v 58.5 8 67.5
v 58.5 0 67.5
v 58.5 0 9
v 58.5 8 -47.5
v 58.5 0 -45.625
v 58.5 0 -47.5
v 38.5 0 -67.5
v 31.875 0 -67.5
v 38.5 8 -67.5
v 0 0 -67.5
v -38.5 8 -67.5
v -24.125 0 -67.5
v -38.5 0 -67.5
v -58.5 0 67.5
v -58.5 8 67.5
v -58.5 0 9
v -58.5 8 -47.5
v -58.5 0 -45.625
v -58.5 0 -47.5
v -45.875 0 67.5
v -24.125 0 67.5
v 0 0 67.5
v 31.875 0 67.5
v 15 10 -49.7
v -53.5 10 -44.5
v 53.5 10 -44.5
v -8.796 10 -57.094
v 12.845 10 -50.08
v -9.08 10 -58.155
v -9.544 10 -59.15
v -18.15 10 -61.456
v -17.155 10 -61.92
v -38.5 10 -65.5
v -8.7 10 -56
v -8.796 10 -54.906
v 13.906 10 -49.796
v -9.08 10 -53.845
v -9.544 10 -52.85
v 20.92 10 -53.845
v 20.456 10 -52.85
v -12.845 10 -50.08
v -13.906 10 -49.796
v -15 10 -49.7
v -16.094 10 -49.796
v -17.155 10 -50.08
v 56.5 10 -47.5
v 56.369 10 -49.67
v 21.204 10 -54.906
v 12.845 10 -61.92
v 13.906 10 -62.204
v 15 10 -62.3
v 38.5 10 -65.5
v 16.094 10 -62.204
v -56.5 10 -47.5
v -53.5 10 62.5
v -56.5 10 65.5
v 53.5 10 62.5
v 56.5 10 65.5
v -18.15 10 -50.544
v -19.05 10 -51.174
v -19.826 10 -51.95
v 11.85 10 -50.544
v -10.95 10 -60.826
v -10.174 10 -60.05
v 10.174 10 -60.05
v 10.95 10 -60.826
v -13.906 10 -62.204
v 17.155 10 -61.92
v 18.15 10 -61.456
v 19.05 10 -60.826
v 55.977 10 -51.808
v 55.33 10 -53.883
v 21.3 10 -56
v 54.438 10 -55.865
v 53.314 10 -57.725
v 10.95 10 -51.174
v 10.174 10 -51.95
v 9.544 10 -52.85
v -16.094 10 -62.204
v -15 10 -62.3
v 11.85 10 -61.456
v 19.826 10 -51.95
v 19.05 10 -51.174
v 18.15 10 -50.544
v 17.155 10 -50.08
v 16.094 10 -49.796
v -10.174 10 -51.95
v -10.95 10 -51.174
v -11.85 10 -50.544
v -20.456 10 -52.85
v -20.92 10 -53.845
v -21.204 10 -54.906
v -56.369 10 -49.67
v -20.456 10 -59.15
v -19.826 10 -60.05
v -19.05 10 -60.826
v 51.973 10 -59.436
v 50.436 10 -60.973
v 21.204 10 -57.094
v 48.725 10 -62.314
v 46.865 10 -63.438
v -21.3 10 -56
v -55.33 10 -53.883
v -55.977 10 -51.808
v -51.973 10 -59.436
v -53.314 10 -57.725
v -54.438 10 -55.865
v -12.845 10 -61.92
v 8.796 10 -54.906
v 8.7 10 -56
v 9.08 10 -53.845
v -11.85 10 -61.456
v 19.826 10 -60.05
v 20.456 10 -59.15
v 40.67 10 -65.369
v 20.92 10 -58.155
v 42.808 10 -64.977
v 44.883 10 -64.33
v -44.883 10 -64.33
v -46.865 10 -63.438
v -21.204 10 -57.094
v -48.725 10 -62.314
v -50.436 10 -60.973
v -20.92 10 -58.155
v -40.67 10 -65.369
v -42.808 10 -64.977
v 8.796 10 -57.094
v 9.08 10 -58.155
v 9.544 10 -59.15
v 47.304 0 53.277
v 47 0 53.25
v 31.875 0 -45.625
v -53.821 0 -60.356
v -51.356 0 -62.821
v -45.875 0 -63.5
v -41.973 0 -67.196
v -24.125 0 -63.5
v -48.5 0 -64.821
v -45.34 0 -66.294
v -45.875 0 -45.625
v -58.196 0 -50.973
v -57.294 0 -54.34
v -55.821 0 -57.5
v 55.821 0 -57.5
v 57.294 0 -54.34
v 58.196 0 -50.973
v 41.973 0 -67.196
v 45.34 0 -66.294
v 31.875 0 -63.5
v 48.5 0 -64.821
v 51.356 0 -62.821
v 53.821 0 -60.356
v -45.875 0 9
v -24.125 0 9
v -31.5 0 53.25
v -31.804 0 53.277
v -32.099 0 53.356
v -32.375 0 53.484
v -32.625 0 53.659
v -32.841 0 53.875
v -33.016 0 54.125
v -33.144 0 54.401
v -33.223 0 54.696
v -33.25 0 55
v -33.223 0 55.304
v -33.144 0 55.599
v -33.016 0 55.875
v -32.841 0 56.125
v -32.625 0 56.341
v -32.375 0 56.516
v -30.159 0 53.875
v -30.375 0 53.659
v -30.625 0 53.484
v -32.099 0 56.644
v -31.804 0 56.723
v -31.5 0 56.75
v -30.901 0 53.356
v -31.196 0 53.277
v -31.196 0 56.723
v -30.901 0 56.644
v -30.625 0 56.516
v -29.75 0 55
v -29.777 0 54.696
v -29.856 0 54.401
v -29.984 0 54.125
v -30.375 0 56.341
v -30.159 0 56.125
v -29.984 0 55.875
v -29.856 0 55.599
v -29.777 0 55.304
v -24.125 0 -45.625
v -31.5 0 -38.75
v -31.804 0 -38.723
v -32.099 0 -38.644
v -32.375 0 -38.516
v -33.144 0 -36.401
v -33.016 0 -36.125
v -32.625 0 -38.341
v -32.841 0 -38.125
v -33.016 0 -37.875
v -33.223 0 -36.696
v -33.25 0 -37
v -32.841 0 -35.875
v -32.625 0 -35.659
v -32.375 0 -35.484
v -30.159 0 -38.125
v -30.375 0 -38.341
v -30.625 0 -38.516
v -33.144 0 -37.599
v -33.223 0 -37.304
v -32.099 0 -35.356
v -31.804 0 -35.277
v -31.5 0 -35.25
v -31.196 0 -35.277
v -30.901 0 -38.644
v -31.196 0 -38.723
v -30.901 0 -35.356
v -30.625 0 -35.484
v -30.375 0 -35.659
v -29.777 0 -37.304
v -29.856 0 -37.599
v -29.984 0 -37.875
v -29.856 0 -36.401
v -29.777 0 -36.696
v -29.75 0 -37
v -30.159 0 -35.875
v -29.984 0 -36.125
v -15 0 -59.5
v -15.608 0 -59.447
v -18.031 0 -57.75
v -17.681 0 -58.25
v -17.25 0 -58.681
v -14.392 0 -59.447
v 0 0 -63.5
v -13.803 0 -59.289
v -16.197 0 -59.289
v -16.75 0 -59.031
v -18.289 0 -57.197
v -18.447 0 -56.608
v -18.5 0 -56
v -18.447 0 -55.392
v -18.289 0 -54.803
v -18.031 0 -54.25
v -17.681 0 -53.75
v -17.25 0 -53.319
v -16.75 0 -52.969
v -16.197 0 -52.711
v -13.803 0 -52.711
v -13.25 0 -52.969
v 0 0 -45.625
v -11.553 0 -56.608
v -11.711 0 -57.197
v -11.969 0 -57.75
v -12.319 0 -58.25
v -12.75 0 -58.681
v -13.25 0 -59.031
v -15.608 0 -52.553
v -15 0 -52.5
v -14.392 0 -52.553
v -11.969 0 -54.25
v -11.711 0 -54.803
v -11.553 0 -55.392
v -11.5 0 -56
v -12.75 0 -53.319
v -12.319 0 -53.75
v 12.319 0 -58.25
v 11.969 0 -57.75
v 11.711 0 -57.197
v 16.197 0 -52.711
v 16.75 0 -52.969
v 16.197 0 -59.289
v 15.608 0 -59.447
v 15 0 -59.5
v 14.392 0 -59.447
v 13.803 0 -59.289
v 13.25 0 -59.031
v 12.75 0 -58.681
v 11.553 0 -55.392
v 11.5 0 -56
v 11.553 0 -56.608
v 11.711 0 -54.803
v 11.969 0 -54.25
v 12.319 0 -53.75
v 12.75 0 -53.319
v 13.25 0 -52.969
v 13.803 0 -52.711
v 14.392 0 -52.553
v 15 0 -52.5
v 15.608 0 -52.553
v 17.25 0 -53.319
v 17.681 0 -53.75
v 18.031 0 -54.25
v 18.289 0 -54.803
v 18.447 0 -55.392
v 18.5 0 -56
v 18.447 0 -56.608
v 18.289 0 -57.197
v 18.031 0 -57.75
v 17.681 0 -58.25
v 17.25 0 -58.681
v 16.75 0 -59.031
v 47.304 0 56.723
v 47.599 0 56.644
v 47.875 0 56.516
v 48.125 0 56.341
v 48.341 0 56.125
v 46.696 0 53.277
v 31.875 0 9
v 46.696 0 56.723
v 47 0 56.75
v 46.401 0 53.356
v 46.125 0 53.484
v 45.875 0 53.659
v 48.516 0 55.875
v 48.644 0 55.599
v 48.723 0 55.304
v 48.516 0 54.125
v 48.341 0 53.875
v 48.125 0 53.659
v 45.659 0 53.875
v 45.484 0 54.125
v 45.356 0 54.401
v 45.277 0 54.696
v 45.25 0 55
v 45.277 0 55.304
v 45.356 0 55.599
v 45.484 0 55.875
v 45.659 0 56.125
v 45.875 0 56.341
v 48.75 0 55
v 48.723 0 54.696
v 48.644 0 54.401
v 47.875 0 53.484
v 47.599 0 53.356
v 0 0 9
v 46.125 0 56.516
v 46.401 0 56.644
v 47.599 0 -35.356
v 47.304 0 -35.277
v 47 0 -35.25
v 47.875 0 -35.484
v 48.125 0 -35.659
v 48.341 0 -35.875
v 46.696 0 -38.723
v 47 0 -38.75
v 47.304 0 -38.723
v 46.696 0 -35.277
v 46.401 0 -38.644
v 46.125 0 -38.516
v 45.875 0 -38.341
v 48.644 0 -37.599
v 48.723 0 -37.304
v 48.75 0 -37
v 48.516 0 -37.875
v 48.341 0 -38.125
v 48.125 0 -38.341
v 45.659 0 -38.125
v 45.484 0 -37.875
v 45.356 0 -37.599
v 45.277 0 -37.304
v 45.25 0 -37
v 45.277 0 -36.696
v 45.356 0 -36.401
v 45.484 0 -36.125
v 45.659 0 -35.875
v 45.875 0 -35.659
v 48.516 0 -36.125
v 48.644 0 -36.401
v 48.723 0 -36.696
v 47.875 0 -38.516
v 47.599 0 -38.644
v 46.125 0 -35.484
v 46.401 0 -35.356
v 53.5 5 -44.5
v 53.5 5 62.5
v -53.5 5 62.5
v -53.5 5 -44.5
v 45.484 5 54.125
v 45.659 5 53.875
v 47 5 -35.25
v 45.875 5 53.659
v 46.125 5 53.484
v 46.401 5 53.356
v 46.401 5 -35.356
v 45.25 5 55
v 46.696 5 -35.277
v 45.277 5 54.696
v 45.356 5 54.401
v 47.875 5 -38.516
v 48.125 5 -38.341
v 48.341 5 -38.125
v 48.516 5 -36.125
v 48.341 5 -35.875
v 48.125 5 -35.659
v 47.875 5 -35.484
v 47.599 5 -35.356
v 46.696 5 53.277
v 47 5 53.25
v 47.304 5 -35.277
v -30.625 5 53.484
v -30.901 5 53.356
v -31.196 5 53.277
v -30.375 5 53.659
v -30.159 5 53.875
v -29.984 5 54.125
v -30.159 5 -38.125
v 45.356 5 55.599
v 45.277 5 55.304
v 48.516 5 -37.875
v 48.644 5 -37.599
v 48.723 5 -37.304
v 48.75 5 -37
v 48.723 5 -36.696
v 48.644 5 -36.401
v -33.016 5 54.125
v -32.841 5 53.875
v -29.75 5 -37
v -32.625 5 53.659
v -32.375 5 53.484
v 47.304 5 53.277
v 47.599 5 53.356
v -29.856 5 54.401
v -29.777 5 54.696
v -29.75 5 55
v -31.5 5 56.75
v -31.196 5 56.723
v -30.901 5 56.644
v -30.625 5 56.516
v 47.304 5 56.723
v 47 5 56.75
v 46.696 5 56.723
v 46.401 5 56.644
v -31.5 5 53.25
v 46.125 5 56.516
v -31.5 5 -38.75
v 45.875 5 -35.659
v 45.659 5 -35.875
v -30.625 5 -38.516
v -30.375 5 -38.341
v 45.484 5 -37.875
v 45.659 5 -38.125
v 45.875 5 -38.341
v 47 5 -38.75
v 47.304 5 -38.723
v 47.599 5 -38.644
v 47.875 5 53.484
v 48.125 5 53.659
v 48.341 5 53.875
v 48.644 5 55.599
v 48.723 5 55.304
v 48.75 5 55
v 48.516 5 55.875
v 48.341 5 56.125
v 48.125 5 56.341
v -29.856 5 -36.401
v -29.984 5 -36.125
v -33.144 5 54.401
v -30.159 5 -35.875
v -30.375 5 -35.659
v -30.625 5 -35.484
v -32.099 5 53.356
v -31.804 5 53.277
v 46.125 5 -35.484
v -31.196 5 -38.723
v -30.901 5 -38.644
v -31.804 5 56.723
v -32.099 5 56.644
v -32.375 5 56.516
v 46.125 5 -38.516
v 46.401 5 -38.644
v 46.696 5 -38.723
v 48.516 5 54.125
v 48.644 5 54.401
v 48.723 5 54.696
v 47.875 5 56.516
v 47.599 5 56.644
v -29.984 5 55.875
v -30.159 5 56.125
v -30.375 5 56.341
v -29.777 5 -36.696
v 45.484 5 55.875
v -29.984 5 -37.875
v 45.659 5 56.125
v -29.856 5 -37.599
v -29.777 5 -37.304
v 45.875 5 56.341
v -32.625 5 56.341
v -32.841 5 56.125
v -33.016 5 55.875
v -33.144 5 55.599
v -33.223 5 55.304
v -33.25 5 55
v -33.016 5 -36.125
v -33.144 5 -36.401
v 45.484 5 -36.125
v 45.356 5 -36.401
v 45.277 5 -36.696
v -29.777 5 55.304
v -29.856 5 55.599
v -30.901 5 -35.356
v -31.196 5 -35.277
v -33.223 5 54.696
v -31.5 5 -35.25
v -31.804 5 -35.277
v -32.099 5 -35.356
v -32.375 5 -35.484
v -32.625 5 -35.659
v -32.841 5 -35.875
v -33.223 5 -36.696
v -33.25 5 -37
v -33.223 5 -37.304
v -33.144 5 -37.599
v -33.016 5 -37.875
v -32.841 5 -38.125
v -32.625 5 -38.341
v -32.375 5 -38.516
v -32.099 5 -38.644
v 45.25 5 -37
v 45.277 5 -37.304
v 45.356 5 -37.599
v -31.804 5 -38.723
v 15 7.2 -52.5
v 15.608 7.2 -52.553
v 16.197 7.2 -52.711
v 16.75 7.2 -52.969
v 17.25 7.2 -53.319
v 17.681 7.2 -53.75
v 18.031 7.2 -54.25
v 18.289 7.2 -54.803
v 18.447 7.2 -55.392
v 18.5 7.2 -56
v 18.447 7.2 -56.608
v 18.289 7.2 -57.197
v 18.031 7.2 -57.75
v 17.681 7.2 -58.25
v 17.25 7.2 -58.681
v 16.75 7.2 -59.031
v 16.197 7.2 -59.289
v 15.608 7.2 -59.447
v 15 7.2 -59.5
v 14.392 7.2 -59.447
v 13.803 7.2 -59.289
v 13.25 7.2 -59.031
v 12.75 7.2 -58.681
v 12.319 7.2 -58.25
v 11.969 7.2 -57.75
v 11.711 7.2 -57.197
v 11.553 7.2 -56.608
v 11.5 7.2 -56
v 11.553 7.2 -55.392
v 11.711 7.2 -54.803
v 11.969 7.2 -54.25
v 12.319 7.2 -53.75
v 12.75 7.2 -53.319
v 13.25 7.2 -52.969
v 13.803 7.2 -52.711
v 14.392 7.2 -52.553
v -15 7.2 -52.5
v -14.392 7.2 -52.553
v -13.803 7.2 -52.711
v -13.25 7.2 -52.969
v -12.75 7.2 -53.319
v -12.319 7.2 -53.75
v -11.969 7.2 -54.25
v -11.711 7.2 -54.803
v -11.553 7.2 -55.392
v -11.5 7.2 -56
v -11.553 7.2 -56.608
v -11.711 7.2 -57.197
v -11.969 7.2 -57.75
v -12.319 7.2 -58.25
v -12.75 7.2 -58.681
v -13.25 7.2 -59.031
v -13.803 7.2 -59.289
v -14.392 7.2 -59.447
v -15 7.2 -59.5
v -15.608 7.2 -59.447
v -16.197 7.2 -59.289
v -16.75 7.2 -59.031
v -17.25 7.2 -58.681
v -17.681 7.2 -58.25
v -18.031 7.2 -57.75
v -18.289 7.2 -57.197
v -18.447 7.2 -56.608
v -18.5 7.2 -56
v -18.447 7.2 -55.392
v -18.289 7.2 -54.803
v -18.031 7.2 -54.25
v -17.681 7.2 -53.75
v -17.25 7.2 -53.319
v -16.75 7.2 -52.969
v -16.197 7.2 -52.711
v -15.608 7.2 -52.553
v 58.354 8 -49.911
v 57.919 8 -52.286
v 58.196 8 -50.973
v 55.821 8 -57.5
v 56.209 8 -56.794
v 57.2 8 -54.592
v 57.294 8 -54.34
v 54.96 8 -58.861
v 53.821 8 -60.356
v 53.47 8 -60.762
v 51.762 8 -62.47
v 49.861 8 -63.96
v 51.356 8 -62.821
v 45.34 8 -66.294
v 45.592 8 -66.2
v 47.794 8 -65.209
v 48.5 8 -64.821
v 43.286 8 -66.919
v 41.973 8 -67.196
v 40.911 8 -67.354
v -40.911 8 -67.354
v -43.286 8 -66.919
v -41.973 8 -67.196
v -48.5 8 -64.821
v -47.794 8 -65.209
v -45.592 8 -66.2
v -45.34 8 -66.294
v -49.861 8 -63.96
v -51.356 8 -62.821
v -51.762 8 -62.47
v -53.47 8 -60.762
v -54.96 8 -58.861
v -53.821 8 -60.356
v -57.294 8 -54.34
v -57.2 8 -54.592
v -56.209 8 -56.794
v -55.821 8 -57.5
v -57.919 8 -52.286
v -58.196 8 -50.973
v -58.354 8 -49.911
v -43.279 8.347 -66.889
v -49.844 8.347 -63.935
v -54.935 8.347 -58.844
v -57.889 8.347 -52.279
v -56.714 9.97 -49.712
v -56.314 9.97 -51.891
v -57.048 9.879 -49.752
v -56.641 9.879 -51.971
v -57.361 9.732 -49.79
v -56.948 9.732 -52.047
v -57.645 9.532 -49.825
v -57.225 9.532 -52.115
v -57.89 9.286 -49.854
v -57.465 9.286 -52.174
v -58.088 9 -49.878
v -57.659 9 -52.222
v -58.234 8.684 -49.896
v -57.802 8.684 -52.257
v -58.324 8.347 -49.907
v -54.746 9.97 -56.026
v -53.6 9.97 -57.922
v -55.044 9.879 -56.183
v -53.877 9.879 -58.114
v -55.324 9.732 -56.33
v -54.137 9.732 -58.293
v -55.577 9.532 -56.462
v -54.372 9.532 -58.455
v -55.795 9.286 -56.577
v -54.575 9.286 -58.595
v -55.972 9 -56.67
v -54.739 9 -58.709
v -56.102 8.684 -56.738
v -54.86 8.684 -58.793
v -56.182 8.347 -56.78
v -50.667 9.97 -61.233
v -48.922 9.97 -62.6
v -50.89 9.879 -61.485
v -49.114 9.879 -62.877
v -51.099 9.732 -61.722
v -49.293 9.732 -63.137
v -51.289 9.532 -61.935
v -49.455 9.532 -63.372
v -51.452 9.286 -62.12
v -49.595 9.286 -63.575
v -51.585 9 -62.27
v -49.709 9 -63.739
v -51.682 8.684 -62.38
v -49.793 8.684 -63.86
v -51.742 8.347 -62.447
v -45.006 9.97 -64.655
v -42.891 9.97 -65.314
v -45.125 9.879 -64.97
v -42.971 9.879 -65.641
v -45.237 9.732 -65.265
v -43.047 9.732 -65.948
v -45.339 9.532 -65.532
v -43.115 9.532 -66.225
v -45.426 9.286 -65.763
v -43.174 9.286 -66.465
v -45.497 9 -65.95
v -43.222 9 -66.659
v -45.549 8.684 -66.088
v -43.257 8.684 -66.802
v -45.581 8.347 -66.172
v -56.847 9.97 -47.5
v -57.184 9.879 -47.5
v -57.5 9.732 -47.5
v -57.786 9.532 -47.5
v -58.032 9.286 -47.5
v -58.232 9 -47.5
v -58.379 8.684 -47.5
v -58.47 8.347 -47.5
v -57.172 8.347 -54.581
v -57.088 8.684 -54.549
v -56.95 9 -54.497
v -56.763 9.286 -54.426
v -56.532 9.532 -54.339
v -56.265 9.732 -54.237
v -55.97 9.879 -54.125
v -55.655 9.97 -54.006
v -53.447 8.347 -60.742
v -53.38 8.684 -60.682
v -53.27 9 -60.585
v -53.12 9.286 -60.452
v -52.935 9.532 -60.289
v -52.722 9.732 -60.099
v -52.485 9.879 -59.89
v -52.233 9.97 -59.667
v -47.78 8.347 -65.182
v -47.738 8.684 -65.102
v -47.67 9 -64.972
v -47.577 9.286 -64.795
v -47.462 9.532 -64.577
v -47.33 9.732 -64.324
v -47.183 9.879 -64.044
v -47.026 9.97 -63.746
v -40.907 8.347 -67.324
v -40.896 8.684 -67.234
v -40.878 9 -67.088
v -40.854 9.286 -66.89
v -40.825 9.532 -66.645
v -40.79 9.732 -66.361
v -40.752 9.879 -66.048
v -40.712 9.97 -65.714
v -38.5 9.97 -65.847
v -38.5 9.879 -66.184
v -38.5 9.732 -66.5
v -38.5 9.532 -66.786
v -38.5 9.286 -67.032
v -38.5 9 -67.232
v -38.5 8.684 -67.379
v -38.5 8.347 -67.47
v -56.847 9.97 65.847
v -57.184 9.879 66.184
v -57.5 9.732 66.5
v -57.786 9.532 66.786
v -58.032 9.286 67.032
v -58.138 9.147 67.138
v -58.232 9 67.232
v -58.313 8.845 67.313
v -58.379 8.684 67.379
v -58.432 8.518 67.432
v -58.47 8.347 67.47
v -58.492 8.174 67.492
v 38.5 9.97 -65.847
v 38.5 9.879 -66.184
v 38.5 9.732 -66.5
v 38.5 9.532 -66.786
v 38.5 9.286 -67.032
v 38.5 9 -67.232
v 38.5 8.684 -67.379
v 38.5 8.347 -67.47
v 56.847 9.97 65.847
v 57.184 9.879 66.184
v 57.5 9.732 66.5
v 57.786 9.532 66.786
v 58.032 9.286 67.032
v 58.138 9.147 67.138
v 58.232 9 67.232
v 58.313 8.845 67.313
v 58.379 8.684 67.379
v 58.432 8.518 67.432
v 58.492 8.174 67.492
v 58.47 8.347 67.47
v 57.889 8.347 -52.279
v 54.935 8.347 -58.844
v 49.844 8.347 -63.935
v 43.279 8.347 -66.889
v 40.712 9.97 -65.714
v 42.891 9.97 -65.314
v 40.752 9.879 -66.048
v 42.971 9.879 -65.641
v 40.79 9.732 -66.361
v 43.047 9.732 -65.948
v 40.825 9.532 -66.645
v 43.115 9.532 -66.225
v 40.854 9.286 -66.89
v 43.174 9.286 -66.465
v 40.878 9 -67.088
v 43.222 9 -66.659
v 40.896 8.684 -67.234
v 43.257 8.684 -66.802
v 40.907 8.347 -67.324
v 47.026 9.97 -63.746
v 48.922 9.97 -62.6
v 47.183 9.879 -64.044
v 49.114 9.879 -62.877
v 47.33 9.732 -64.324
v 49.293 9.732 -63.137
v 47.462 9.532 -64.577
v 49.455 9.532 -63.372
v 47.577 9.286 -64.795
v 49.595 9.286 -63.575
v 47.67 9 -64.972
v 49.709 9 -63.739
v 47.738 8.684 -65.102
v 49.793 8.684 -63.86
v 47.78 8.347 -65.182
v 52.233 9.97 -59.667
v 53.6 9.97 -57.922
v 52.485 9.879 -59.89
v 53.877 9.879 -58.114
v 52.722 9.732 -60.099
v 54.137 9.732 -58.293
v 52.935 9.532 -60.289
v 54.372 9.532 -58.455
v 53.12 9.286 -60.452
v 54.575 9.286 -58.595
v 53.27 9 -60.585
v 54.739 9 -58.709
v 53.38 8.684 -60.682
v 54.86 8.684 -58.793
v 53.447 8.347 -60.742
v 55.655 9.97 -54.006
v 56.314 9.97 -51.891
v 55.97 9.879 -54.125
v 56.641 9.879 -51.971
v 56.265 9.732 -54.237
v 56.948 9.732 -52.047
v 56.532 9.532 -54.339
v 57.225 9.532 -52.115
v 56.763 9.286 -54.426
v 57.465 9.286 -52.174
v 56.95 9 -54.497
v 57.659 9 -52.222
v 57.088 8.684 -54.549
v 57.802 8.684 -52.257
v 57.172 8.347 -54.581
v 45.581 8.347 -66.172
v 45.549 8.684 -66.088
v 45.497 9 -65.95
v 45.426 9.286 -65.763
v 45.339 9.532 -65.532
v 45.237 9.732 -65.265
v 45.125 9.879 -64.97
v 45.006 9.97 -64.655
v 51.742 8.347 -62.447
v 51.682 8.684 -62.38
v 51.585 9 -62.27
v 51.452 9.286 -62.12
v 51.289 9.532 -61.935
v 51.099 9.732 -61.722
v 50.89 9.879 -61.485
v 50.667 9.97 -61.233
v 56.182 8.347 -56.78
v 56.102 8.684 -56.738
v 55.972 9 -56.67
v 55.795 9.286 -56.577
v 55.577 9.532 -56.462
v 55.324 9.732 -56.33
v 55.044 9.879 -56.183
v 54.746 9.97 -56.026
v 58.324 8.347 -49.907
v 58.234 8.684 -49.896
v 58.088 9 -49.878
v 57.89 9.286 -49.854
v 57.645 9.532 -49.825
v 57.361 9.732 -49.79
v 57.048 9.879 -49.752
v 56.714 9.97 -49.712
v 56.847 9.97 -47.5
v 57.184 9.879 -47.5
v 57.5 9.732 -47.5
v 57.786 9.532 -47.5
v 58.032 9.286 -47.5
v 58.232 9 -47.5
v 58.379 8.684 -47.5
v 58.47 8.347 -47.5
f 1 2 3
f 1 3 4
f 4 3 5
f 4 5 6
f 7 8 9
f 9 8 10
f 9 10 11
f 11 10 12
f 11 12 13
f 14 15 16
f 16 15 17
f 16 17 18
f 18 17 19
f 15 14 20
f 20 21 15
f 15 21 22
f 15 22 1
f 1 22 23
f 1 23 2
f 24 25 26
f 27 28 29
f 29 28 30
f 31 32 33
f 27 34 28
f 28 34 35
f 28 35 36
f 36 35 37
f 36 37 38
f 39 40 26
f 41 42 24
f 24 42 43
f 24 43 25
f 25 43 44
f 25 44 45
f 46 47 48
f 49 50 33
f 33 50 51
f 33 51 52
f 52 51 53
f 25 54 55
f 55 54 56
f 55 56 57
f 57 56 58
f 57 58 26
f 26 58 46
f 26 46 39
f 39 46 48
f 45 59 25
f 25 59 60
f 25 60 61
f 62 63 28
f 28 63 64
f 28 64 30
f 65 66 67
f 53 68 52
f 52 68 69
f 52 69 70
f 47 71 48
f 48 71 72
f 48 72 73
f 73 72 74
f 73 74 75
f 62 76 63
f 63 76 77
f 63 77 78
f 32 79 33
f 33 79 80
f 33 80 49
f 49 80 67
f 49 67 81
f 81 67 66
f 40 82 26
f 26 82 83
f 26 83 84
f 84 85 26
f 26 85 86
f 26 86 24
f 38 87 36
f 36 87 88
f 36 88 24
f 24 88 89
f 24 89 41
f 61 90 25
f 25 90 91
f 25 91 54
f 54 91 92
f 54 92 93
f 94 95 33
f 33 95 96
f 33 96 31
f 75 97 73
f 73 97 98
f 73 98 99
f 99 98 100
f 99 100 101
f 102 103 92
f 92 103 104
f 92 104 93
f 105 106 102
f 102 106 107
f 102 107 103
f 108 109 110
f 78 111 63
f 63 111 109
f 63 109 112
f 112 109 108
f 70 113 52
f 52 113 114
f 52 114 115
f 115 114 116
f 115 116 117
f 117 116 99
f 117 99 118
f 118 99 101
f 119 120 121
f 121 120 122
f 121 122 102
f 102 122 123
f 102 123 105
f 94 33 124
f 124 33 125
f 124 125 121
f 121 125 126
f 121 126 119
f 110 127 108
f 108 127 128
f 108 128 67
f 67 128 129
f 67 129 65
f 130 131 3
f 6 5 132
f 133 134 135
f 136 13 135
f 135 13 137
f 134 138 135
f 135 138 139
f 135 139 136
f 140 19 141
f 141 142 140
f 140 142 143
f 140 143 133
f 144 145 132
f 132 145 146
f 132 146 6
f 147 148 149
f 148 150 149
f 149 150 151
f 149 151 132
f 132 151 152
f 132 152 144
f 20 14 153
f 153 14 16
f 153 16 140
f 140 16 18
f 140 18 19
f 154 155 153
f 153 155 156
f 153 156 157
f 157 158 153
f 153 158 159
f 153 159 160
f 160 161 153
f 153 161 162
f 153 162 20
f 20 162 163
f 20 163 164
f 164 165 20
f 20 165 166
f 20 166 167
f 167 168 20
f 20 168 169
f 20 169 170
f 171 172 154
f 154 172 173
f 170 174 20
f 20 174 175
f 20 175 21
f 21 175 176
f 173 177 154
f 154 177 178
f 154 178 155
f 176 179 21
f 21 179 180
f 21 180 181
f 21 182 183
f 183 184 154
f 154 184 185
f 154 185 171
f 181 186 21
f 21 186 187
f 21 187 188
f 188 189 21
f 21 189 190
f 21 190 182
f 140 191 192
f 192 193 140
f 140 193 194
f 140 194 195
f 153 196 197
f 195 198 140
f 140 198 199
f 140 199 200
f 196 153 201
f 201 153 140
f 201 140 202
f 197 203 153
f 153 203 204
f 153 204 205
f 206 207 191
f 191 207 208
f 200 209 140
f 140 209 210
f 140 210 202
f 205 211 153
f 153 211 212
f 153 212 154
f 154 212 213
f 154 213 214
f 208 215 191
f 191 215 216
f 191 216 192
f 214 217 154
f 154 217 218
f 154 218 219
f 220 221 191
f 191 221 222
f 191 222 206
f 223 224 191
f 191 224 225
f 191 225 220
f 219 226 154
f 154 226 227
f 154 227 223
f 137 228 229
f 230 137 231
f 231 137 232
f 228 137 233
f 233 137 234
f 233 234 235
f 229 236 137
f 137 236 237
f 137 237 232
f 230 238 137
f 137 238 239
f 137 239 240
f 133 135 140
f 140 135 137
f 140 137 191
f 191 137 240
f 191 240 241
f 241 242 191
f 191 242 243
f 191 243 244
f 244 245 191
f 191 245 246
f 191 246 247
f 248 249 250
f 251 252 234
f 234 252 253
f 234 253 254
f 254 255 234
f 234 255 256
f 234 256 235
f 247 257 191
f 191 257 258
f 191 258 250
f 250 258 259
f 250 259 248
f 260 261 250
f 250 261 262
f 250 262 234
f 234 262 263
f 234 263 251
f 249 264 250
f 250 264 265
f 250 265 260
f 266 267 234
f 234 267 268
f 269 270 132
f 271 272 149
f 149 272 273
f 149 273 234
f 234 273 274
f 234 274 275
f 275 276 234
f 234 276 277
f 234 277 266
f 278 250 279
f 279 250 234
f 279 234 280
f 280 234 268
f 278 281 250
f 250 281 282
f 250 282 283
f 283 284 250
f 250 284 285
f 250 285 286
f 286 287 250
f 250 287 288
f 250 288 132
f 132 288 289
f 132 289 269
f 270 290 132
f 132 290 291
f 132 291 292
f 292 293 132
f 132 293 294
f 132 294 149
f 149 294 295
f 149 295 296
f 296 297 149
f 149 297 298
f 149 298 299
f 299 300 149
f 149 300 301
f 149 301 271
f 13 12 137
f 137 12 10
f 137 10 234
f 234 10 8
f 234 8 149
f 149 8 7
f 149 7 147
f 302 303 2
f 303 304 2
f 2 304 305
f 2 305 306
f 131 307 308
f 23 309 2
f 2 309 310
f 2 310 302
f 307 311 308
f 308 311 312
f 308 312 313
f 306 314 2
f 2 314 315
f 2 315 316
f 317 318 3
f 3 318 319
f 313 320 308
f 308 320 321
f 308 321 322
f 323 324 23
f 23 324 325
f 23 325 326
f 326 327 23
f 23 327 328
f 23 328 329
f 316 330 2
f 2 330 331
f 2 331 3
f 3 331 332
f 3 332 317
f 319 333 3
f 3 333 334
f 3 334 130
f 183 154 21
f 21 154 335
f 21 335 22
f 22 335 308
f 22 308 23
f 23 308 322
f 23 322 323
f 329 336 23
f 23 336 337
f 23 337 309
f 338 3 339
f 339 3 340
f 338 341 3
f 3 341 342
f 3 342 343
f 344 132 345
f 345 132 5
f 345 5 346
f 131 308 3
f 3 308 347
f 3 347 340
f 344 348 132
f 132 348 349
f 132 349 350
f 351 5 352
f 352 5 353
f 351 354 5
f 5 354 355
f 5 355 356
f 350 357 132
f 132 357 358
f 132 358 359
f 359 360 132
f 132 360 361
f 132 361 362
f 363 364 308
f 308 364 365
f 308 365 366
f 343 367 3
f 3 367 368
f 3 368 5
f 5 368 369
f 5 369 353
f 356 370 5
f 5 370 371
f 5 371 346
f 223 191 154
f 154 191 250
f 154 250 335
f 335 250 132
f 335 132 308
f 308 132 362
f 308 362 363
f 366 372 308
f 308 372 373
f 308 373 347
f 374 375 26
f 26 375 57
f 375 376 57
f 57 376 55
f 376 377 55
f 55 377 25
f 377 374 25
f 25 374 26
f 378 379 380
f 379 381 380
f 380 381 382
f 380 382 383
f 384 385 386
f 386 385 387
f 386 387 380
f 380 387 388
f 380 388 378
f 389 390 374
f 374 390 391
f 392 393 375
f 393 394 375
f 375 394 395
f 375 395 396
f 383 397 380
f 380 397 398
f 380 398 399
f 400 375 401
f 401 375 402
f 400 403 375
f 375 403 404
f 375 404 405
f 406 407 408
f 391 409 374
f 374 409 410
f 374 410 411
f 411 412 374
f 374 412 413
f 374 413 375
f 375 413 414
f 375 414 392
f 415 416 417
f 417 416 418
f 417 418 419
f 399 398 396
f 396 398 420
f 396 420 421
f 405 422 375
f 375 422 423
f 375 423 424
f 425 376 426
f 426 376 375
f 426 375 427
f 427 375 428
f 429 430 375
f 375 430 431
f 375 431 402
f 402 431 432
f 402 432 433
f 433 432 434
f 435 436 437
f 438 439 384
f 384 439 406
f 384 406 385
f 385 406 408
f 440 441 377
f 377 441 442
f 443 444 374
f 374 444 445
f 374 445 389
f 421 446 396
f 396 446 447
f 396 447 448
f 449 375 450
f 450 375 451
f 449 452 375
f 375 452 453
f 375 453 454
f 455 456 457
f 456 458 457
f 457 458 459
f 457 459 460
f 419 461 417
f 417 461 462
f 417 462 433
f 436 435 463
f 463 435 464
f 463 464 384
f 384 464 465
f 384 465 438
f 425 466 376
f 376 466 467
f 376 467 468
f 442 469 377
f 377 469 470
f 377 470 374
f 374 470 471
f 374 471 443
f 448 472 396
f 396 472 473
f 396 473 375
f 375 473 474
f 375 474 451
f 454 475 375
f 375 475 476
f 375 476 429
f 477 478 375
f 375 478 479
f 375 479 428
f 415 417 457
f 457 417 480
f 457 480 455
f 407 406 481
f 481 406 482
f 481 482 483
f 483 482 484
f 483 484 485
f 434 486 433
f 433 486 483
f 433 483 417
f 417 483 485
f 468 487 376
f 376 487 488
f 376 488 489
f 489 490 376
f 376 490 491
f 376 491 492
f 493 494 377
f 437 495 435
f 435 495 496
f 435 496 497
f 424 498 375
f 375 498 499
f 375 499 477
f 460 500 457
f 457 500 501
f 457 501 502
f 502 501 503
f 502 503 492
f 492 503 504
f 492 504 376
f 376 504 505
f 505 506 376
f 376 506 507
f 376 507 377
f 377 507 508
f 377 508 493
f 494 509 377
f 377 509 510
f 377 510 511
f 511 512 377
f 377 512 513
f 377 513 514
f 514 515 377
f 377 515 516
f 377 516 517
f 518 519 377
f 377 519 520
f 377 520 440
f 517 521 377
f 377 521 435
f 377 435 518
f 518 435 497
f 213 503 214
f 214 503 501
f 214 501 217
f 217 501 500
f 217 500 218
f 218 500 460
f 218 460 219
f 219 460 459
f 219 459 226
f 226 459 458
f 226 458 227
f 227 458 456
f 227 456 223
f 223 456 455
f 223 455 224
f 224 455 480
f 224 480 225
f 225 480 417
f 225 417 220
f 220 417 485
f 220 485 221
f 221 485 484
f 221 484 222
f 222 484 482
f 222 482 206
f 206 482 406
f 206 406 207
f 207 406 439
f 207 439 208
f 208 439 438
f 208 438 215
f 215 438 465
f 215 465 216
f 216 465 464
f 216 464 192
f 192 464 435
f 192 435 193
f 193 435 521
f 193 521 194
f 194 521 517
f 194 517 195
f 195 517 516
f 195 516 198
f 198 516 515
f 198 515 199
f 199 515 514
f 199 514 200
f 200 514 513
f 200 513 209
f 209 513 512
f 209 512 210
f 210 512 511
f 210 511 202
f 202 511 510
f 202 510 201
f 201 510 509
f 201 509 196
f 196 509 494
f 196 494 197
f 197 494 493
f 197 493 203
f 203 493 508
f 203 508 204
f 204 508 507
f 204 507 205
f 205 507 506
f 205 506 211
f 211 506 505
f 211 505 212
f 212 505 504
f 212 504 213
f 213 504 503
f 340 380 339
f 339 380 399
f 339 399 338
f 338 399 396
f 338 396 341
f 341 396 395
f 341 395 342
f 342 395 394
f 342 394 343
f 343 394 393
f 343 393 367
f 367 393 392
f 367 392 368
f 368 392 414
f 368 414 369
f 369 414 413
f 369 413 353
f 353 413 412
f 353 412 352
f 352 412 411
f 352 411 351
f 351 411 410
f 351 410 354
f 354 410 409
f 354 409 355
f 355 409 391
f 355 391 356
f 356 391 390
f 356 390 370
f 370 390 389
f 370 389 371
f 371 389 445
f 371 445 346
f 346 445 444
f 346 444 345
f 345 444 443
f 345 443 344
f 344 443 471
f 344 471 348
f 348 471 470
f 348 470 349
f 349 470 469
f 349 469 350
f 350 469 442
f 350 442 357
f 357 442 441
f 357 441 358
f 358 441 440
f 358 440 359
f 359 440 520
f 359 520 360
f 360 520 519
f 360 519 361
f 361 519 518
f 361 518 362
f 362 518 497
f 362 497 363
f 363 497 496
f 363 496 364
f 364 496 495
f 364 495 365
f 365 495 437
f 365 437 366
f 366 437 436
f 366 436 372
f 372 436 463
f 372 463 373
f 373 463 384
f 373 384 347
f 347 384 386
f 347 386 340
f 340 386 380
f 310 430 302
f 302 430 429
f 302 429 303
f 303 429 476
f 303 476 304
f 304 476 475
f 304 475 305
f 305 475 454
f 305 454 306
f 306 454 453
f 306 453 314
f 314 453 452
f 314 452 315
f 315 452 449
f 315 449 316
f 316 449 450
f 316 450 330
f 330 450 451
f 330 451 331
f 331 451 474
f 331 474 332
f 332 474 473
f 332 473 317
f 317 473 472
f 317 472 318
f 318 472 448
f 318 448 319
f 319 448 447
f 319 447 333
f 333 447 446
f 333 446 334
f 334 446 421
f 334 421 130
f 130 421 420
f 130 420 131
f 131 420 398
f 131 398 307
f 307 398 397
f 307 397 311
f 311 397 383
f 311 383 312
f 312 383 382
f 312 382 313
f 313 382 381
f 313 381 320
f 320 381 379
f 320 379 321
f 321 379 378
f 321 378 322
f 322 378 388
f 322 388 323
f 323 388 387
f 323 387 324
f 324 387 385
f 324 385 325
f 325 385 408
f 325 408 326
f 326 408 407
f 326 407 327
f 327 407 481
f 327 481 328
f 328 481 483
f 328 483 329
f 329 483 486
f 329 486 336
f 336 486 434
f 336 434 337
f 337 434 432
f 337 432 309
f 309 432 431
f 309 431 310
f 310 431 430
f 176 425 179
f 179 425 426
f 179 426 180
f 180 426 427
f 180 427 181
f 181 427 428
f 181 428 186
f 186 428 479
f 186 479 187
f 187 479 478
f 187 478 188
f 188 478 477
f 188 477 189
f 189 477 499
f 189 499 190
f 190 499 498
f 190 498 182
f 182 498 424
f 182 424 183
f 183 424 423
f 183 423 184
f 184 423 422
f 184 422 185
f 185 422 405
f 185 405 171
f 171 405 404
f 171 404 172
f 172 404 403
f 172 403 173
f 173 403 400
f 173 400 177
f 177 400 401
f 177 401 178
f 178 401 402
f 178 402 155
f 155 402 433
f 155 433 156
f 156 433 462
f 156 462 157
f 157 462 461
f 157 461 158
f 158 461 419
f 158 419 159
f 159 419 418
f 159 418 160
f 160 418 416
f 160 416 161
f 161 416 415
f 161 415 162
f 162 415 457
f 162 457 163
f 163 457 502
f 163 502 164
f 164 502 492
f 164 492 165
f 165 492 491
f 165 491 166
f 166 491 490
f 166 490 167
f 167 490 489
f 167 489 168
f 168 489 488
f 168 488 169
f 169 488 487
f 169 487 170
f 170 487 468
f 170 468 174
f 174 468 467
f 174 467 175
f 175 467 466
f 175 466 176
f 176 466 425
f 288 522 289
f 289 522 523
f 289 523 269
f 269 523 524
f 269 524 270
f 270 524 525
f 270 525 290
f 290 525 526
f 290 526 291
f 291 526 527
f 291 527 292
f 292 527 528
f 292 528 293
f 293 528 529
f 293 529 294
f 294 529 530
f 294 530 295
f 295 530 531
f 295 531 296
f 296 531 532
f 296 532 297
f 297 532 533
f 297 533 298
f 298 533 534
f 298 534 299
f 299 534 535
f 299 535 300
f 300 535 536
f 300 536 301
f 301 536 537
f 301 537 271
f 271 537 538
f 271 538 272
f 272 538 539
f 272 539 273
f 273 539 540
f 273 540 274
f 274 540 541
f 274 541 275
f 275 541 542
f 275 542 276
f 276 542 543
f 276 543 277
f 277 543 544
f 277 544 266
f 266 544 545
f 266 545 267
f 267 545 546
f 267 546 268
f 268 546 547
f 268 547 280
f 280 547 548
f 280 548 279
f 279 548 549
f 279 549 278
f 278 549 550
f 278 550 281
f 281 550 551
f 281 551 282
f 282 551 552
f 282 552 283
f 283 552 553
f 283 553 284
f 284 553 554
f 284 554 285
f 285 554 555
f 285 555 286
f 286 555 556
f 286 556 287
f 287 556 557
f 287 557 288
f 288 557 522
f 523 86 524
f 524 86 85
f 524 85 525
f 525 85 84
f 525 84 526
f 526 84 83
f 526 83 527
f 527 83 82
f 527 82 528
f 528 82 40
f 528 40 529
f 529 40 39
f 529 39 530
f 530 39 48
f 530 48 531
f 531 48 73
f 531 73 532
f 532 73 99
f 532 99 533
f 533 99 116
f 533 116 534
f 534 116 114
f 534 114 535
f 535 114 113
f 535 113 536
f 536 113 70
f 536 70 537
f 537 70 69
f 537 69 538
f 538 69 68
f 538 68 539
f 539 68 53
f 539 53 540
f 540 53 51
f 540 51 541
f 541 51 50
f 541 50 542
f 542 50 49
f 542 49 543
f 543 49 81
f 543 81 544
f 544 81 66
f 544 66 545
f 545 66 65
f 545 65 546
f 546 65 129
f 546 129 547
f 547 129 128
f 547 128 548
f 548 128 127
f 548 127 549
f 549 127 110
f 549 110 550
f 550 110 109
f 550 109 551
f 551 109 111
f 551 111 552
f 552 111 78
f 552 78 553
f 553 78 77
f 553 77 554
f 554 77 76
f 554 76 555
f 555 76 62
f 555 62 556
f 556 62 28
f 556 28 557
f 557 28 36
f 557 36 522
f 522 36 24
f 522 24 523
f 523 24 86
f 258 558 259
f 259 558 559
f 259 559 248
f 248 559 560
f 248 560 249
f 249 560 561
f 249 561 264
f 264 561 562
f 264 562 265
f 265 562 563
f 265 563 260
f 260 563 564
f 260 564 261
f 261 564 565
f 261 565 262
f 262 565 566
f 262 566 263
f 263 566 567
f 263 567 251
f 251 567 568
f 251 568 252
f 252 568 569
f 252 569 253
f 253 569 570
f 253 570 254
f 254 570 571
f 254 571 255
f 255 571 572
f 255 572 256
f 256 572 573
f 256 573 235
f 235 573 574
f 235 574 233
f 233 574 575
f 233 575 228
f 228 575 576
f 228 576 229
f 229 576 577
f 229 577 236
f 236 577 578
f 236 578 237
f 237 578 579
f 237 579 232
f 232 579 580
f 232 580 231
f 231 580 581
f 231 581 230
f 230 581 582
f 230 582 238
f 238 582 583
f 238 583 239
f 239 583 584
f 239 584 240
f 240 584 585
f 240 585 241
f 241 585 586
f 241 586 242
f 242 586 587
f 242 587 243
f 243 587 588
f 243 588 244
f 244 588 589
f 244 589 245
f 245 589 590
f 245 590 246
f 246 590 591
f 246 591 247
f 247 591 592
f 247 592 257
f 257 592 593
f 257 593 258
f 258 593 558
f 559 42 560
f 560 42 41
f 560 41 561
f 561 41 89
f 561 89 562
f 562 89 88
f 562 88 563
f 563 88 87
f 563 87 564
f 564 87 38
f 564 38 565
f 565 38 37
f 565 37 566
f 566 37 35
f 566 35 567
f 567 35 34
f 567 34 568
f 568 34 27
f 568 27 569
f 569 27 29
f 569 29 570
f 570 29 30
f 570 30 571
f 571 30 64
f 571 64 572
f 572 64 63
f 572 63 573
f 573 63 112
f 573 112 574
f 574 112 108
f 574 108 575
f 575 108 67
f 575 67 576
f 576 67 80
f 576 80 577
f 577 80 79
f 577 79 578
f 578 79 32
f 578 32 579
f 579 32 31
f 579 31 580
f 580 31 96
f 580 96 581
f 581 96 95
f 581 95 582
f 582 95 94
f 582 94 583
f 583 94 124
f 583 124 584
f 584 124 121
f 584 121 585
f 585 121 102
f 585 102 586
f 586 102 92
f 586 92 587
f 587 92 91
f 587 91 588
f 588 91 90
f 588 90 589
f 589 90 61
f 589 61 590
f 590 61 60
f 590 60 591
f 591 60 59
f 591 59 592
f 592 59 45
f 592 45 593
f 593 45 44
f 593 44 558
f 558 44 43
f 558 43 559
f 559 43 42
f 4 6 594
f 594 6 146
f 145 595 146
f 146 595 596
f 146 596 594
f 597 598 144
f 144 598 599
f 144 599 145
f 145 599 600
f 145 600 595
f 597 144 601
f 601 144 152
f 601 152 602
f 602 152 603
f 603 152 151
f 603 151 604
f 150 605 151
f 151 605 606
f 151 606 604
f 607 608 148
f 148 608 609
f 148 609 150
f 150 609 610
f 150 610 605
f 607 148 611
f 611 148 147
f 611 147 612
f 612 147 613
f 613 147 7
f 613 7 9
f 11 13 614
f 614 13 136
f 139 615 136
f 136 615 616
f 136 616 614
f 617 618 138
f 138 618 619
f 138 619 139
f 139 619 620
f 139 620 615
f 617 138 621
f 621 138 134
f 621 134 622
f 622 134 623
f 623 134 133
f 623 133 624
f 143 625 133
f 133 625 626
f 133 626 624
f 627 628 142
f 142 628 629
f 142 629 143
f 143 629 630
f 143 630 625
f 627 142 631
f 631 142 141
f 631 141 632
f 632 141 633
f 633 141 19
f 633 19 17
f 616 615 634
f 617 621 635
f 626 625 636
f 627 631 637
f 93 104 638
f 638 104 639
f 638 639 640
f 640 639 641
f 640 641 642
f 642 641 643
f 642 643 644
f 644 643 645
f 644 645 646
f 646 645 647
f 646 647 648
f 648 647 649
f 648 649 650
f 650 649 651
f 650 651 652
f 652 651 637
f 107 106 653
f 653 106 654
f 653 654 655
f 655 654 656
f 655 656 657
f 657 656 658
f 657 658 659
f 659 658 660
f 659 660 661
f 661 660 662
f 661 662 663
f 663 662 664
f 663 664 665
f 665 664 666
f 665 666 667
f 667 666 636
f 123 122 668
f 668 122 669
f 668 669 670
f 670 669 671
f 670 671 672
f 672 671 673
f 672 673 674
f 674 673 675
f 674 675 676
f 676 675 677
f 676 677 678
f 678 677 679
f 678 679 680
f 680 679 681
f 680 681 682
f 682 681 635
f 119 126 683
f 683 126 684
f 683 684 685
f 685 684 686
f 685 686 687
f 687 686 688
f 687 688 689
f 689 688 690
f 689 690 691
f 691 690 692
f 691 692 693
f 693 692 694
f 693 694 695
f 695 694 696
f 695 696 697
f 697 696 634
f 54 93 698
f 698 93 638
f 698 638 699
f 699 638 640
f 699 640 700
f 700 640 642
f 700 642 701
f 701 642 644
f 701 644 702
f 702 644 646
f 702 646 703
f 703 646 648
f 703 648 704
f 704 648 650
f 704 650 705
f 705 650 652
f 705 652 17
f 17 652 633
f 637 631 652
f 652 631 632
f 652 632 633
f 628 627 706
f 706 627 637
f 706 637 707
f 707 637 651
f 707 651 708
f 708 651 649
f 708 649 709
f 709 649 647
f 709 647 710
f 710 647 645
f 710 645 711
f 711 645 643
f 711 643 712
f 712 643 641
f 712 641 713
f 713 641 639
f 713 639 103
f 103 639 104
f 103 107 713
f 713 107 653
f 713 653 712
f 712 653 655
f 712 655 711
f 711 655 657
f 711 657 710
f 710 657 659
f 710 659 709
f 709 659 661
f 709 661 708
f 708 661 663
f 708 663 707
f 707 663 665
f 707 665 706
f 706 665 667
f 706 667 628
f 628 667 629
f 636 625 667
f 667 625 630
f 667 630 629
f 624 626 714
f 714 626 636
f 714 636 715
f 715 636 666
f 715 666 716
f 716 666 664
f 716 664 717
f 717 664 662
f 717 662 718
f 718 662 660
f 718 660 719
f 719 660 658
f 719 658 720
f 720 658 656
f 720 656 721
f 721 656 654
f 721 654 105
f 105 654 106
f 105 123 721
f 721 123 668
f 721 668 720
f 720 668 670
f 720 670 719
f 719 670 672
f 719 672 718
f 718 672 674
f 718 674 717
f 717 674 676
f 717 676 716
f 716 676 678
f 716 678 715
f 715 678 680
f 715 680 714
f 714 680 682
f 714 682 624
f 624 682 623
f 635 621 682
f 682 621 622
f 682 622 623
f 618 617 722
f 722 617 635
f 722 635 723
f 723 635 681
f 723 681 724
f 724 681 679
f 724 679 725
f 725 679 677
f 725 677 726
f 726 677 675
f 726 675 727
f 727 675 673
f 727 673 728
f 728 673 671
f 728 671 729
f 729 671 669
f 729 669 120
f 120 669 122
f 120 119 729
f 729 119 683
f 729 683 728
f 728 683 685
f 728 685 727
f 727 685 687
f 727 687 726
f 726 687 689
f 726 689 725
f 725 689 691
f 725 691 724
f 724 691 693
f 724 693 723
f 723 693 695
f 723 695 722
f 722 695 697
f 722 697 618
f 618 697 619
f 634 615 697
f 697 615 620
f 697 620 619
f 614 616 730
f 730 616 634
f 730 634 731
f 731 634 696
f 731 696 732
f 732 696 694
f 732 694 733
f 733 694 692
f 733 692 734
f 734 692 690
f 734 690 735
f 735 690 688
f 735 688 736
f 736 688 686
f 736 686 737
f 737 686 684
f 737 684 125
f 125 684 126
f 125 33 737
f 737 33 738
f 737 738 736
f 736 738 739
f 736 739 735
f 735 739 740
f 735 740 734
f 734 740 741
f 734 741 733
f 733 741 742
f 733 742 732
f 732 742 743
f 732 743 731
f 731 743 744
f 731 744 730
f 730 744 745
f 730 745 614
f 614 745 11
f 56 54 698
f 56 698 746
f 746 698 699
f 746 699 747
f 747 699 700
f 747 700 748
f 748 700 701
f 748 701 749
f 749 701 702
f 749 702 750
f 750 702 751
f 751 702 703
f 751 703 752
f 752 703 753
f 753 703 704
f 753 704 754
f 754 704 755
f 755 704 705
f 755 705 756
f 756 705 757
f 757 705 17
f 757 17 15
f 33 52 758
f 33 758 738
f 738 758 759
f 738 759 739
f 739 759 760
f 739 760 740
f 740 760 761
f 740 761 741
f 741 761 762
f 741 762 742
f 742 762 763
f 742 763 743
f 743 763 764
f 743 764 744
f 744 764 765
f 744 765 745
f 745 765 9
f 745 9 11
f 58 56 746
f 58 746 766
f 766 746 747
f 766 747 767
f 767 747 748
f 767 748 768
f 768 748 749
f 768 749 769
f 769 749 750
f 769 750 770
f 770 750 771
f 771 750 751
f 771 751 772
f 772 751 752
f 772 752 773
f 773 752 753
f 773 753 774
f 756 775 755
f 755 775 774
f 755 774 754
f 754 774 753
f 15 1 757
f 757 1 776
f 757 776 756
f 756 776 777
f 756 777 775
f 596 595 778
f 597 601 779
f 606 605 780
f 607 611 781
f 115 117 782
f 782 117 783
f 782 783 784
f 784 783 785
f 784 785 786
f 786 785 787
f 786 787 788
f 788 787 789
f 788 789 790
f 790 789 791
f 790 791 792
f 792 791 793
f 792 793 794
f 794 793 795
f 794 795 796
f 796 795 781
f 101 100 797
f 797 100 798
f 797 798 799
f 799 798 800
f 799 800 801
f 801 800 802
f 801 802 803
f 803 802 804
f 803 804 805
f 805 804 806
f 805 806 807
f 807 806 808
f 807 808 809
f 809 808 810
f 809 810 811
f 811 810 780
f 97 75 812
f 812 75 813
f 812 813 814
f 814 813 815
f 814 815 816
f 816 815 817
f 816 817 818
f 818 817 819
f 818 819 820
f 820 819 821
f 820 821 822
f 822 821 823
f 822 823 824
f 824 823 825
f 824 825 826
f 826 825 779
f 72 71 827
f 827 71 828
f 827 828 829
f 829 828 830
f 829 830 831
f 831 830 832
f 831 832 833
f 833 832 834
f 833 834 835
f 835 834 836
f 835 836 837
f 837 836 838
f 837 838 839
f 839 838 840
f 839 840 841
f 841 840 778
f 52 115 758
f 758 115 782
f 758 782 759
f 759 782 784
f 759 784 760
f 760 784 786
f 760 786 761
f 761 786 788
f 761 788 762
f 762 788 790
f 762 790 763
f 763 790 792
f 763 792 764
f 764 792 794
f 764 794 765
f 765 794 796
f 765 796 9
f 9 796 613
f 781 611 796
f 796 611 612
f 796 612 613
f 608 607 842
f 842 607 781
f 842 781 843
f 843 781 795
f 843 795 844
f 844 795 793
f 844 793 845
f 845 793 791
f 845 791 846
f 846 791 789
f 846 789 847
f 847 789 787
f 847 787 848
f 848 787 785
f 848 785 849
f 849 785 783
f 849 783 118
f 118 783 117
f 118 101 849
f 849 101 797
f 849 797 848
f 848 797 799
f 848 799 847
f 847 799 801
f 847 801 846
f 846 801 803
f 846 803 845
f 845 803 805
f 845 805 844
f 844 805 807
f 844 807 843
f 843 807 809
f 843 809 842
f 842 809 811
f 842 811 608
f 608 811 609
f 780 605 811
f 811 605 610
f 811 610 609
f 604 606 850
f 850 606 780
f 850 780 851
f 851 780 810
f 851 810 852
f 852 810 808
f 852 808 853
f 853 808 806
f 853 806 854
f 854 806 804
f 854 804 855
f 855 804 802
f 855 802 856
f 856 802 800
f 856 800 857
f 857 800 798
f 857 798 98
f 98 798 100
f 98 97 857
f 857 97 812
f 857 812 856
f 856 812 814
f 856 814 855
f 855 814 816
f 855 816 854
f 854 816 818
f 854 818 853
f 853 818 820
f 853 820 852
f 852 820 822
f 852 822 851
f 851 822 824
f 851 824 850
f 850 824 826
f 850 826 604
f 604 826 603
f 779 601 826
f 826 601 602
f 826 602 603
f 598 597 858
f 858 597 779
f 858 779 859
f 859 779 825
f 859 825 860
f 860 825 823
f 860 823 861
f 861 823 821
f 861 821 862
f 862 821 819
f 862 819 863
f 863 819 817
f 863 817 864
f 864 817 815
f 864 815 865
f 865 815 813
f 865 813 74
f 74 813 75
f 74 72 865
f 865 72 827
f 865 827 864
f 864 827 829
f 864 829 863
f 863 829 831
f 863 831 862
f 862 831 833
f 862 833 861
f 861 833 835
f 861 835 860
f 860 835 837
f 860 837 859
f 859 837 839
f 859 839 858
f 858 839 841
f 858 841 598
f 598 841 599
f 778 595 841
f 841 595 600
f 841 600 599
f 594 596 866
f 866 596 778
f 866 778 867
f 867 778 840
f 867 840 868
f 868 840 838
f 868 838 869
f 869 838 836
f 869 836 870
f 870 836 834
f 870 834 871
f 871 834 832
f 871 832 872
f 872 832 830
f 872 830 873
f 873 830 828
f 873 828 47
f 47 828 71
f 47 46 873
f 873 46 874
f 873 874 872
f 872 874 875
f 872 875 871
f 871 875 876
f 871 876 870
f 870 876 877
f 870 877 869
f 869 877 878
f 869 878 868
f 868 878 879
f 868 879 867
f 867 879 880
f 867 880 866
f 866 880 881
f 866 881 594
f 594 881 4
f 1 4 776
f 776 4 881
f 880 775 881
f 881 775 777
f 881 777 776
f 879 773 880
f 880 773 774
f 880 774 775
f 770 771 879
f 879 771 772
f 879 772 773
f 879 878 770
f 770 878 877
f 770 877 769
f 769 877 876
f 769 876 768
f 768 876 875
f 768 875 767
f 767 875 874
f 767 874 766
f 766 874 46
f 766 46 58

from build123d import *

# Parameters (mm, degrees)
SKETCH2_W                                       = 117
SKETCH2_H                                       = 135
BOSS_EXTRUDE1_DEPTH                             = 10
SKETCH4_W                                       = 107
SKETCH4_H                                       = 107
CUT_EXTRUDE1_DEPTH                              = 5
SKETCH3_R                                       = 1.75
CUT_EXTRUDE2_DEPTH                              = 90.462282555
CSK_FOR_M6_FLAT_HEAD_MACHINE_SCREW1_D           = 7
CSK_FOR_M6_FLAT_HEAD_MACHINE_SCREW1_CSINK_D     = 12.6
CSK_FOR_M6_FLAT_HEAD_MACHINE_SCREW1_CSINK_ANGLE = 90
FILLET1_R                                       = 20
FILLET2_R                                       = 2


with BuildPart() as part:
    # Sketch2 → Boss-Extrude1 (new body)
    with BuildSketch(Plane(origin=(0, 0, 0), x_dir=(1, 0, 0), z_dir=(0, 1, 0))):
        Rectangle(SKETCH2_W, SKETCH2_H)
    extrude(amount=BOSS_EXTRUDE1_DEPTH)

    # Sketch4 → Cut-Extrude1 (cut)
    with BuildSketch(Plane(origin=(0, 10, 0), x_dir=(1, 0, 0), z_dir=(0, 1, 0))):
        with Locations((0, -9)):
            Rectangle(SKETCH4_W, SKETCH4_H)
    extrude(amount=-CUT_EXTRUDE1_DEPTH, mode=Mode.SUBTRACT)

    # Sketch3 → Cut-Extrude2 (cut, through all)
    with BuildSketch(Plane(origin=(0, 5, 0), x_dir=(1, 0, 0), z_dir=(0, 1, 0))):
        with Locations(Location((-31.5, 37, 0), (0, 0, 270))):
            Circle(SKETCH3_R)
        with Locations(Location((47, 37, 0), (0, 0, 270))):
            Circle(SKETCH3_R)
        with Locations(Location((47, -55, 0), (0, 0, 270))):
            Circle(SKETCH3_R)
        with Locations(Location((-31.5, -55, 0), (0, 0, 270))):
            Circle(SKETCH3_R)
    extrude(amount=-CUT_EXTRUDE2_DEPTH, mode=Mode.SUBTRACT)

    # CSK for M6 Flat Head Machine Screw1 (through all)
    with Locations(Plane(origin=(0, 10, 0), x_dir=(1, 0, 0), z_dir=(0, 1, 0))):
        with Locations((-15, 56), (15, 56)):
            CounterSinkHole(CSK_FOR_M6_FLAT_HEAD_MACHINE_SCREW1_D / 2, CSK_FOR_M6_FLAT_HEAD_MACHINE_SCREW1_CSINK_D / 2, counter_sink_angle=CSK_FOR_M6_FLAT_HEAD_MACHINE_SCREW1_CSINK_ANGLE)

    # Fillet1
    fillet1_edges = [part.edges().sort_by_distance(p)[0] for p in [
        (-58.5, 5, -67.5),
        (58.5, 5, -67.5),
    ]]
    fillet(fillet1_edges, radius=FILLET1_R)

    # Fillet2
    fillet2_edges = [part.edges().sort_by_distance(p)[0] for p in [
        (0, 10, 67.5),
        (58.5, 10, 10),
        (0, 10, -67.5),
        (-58.5, 10, 10),
        (-52.642135624, 10, -61.642135624),
        (52.642135624, 10, -61.642135624),
    ]]
    fillet(fillet2_edges, radius=FILLET2_R)


solid = part.part
